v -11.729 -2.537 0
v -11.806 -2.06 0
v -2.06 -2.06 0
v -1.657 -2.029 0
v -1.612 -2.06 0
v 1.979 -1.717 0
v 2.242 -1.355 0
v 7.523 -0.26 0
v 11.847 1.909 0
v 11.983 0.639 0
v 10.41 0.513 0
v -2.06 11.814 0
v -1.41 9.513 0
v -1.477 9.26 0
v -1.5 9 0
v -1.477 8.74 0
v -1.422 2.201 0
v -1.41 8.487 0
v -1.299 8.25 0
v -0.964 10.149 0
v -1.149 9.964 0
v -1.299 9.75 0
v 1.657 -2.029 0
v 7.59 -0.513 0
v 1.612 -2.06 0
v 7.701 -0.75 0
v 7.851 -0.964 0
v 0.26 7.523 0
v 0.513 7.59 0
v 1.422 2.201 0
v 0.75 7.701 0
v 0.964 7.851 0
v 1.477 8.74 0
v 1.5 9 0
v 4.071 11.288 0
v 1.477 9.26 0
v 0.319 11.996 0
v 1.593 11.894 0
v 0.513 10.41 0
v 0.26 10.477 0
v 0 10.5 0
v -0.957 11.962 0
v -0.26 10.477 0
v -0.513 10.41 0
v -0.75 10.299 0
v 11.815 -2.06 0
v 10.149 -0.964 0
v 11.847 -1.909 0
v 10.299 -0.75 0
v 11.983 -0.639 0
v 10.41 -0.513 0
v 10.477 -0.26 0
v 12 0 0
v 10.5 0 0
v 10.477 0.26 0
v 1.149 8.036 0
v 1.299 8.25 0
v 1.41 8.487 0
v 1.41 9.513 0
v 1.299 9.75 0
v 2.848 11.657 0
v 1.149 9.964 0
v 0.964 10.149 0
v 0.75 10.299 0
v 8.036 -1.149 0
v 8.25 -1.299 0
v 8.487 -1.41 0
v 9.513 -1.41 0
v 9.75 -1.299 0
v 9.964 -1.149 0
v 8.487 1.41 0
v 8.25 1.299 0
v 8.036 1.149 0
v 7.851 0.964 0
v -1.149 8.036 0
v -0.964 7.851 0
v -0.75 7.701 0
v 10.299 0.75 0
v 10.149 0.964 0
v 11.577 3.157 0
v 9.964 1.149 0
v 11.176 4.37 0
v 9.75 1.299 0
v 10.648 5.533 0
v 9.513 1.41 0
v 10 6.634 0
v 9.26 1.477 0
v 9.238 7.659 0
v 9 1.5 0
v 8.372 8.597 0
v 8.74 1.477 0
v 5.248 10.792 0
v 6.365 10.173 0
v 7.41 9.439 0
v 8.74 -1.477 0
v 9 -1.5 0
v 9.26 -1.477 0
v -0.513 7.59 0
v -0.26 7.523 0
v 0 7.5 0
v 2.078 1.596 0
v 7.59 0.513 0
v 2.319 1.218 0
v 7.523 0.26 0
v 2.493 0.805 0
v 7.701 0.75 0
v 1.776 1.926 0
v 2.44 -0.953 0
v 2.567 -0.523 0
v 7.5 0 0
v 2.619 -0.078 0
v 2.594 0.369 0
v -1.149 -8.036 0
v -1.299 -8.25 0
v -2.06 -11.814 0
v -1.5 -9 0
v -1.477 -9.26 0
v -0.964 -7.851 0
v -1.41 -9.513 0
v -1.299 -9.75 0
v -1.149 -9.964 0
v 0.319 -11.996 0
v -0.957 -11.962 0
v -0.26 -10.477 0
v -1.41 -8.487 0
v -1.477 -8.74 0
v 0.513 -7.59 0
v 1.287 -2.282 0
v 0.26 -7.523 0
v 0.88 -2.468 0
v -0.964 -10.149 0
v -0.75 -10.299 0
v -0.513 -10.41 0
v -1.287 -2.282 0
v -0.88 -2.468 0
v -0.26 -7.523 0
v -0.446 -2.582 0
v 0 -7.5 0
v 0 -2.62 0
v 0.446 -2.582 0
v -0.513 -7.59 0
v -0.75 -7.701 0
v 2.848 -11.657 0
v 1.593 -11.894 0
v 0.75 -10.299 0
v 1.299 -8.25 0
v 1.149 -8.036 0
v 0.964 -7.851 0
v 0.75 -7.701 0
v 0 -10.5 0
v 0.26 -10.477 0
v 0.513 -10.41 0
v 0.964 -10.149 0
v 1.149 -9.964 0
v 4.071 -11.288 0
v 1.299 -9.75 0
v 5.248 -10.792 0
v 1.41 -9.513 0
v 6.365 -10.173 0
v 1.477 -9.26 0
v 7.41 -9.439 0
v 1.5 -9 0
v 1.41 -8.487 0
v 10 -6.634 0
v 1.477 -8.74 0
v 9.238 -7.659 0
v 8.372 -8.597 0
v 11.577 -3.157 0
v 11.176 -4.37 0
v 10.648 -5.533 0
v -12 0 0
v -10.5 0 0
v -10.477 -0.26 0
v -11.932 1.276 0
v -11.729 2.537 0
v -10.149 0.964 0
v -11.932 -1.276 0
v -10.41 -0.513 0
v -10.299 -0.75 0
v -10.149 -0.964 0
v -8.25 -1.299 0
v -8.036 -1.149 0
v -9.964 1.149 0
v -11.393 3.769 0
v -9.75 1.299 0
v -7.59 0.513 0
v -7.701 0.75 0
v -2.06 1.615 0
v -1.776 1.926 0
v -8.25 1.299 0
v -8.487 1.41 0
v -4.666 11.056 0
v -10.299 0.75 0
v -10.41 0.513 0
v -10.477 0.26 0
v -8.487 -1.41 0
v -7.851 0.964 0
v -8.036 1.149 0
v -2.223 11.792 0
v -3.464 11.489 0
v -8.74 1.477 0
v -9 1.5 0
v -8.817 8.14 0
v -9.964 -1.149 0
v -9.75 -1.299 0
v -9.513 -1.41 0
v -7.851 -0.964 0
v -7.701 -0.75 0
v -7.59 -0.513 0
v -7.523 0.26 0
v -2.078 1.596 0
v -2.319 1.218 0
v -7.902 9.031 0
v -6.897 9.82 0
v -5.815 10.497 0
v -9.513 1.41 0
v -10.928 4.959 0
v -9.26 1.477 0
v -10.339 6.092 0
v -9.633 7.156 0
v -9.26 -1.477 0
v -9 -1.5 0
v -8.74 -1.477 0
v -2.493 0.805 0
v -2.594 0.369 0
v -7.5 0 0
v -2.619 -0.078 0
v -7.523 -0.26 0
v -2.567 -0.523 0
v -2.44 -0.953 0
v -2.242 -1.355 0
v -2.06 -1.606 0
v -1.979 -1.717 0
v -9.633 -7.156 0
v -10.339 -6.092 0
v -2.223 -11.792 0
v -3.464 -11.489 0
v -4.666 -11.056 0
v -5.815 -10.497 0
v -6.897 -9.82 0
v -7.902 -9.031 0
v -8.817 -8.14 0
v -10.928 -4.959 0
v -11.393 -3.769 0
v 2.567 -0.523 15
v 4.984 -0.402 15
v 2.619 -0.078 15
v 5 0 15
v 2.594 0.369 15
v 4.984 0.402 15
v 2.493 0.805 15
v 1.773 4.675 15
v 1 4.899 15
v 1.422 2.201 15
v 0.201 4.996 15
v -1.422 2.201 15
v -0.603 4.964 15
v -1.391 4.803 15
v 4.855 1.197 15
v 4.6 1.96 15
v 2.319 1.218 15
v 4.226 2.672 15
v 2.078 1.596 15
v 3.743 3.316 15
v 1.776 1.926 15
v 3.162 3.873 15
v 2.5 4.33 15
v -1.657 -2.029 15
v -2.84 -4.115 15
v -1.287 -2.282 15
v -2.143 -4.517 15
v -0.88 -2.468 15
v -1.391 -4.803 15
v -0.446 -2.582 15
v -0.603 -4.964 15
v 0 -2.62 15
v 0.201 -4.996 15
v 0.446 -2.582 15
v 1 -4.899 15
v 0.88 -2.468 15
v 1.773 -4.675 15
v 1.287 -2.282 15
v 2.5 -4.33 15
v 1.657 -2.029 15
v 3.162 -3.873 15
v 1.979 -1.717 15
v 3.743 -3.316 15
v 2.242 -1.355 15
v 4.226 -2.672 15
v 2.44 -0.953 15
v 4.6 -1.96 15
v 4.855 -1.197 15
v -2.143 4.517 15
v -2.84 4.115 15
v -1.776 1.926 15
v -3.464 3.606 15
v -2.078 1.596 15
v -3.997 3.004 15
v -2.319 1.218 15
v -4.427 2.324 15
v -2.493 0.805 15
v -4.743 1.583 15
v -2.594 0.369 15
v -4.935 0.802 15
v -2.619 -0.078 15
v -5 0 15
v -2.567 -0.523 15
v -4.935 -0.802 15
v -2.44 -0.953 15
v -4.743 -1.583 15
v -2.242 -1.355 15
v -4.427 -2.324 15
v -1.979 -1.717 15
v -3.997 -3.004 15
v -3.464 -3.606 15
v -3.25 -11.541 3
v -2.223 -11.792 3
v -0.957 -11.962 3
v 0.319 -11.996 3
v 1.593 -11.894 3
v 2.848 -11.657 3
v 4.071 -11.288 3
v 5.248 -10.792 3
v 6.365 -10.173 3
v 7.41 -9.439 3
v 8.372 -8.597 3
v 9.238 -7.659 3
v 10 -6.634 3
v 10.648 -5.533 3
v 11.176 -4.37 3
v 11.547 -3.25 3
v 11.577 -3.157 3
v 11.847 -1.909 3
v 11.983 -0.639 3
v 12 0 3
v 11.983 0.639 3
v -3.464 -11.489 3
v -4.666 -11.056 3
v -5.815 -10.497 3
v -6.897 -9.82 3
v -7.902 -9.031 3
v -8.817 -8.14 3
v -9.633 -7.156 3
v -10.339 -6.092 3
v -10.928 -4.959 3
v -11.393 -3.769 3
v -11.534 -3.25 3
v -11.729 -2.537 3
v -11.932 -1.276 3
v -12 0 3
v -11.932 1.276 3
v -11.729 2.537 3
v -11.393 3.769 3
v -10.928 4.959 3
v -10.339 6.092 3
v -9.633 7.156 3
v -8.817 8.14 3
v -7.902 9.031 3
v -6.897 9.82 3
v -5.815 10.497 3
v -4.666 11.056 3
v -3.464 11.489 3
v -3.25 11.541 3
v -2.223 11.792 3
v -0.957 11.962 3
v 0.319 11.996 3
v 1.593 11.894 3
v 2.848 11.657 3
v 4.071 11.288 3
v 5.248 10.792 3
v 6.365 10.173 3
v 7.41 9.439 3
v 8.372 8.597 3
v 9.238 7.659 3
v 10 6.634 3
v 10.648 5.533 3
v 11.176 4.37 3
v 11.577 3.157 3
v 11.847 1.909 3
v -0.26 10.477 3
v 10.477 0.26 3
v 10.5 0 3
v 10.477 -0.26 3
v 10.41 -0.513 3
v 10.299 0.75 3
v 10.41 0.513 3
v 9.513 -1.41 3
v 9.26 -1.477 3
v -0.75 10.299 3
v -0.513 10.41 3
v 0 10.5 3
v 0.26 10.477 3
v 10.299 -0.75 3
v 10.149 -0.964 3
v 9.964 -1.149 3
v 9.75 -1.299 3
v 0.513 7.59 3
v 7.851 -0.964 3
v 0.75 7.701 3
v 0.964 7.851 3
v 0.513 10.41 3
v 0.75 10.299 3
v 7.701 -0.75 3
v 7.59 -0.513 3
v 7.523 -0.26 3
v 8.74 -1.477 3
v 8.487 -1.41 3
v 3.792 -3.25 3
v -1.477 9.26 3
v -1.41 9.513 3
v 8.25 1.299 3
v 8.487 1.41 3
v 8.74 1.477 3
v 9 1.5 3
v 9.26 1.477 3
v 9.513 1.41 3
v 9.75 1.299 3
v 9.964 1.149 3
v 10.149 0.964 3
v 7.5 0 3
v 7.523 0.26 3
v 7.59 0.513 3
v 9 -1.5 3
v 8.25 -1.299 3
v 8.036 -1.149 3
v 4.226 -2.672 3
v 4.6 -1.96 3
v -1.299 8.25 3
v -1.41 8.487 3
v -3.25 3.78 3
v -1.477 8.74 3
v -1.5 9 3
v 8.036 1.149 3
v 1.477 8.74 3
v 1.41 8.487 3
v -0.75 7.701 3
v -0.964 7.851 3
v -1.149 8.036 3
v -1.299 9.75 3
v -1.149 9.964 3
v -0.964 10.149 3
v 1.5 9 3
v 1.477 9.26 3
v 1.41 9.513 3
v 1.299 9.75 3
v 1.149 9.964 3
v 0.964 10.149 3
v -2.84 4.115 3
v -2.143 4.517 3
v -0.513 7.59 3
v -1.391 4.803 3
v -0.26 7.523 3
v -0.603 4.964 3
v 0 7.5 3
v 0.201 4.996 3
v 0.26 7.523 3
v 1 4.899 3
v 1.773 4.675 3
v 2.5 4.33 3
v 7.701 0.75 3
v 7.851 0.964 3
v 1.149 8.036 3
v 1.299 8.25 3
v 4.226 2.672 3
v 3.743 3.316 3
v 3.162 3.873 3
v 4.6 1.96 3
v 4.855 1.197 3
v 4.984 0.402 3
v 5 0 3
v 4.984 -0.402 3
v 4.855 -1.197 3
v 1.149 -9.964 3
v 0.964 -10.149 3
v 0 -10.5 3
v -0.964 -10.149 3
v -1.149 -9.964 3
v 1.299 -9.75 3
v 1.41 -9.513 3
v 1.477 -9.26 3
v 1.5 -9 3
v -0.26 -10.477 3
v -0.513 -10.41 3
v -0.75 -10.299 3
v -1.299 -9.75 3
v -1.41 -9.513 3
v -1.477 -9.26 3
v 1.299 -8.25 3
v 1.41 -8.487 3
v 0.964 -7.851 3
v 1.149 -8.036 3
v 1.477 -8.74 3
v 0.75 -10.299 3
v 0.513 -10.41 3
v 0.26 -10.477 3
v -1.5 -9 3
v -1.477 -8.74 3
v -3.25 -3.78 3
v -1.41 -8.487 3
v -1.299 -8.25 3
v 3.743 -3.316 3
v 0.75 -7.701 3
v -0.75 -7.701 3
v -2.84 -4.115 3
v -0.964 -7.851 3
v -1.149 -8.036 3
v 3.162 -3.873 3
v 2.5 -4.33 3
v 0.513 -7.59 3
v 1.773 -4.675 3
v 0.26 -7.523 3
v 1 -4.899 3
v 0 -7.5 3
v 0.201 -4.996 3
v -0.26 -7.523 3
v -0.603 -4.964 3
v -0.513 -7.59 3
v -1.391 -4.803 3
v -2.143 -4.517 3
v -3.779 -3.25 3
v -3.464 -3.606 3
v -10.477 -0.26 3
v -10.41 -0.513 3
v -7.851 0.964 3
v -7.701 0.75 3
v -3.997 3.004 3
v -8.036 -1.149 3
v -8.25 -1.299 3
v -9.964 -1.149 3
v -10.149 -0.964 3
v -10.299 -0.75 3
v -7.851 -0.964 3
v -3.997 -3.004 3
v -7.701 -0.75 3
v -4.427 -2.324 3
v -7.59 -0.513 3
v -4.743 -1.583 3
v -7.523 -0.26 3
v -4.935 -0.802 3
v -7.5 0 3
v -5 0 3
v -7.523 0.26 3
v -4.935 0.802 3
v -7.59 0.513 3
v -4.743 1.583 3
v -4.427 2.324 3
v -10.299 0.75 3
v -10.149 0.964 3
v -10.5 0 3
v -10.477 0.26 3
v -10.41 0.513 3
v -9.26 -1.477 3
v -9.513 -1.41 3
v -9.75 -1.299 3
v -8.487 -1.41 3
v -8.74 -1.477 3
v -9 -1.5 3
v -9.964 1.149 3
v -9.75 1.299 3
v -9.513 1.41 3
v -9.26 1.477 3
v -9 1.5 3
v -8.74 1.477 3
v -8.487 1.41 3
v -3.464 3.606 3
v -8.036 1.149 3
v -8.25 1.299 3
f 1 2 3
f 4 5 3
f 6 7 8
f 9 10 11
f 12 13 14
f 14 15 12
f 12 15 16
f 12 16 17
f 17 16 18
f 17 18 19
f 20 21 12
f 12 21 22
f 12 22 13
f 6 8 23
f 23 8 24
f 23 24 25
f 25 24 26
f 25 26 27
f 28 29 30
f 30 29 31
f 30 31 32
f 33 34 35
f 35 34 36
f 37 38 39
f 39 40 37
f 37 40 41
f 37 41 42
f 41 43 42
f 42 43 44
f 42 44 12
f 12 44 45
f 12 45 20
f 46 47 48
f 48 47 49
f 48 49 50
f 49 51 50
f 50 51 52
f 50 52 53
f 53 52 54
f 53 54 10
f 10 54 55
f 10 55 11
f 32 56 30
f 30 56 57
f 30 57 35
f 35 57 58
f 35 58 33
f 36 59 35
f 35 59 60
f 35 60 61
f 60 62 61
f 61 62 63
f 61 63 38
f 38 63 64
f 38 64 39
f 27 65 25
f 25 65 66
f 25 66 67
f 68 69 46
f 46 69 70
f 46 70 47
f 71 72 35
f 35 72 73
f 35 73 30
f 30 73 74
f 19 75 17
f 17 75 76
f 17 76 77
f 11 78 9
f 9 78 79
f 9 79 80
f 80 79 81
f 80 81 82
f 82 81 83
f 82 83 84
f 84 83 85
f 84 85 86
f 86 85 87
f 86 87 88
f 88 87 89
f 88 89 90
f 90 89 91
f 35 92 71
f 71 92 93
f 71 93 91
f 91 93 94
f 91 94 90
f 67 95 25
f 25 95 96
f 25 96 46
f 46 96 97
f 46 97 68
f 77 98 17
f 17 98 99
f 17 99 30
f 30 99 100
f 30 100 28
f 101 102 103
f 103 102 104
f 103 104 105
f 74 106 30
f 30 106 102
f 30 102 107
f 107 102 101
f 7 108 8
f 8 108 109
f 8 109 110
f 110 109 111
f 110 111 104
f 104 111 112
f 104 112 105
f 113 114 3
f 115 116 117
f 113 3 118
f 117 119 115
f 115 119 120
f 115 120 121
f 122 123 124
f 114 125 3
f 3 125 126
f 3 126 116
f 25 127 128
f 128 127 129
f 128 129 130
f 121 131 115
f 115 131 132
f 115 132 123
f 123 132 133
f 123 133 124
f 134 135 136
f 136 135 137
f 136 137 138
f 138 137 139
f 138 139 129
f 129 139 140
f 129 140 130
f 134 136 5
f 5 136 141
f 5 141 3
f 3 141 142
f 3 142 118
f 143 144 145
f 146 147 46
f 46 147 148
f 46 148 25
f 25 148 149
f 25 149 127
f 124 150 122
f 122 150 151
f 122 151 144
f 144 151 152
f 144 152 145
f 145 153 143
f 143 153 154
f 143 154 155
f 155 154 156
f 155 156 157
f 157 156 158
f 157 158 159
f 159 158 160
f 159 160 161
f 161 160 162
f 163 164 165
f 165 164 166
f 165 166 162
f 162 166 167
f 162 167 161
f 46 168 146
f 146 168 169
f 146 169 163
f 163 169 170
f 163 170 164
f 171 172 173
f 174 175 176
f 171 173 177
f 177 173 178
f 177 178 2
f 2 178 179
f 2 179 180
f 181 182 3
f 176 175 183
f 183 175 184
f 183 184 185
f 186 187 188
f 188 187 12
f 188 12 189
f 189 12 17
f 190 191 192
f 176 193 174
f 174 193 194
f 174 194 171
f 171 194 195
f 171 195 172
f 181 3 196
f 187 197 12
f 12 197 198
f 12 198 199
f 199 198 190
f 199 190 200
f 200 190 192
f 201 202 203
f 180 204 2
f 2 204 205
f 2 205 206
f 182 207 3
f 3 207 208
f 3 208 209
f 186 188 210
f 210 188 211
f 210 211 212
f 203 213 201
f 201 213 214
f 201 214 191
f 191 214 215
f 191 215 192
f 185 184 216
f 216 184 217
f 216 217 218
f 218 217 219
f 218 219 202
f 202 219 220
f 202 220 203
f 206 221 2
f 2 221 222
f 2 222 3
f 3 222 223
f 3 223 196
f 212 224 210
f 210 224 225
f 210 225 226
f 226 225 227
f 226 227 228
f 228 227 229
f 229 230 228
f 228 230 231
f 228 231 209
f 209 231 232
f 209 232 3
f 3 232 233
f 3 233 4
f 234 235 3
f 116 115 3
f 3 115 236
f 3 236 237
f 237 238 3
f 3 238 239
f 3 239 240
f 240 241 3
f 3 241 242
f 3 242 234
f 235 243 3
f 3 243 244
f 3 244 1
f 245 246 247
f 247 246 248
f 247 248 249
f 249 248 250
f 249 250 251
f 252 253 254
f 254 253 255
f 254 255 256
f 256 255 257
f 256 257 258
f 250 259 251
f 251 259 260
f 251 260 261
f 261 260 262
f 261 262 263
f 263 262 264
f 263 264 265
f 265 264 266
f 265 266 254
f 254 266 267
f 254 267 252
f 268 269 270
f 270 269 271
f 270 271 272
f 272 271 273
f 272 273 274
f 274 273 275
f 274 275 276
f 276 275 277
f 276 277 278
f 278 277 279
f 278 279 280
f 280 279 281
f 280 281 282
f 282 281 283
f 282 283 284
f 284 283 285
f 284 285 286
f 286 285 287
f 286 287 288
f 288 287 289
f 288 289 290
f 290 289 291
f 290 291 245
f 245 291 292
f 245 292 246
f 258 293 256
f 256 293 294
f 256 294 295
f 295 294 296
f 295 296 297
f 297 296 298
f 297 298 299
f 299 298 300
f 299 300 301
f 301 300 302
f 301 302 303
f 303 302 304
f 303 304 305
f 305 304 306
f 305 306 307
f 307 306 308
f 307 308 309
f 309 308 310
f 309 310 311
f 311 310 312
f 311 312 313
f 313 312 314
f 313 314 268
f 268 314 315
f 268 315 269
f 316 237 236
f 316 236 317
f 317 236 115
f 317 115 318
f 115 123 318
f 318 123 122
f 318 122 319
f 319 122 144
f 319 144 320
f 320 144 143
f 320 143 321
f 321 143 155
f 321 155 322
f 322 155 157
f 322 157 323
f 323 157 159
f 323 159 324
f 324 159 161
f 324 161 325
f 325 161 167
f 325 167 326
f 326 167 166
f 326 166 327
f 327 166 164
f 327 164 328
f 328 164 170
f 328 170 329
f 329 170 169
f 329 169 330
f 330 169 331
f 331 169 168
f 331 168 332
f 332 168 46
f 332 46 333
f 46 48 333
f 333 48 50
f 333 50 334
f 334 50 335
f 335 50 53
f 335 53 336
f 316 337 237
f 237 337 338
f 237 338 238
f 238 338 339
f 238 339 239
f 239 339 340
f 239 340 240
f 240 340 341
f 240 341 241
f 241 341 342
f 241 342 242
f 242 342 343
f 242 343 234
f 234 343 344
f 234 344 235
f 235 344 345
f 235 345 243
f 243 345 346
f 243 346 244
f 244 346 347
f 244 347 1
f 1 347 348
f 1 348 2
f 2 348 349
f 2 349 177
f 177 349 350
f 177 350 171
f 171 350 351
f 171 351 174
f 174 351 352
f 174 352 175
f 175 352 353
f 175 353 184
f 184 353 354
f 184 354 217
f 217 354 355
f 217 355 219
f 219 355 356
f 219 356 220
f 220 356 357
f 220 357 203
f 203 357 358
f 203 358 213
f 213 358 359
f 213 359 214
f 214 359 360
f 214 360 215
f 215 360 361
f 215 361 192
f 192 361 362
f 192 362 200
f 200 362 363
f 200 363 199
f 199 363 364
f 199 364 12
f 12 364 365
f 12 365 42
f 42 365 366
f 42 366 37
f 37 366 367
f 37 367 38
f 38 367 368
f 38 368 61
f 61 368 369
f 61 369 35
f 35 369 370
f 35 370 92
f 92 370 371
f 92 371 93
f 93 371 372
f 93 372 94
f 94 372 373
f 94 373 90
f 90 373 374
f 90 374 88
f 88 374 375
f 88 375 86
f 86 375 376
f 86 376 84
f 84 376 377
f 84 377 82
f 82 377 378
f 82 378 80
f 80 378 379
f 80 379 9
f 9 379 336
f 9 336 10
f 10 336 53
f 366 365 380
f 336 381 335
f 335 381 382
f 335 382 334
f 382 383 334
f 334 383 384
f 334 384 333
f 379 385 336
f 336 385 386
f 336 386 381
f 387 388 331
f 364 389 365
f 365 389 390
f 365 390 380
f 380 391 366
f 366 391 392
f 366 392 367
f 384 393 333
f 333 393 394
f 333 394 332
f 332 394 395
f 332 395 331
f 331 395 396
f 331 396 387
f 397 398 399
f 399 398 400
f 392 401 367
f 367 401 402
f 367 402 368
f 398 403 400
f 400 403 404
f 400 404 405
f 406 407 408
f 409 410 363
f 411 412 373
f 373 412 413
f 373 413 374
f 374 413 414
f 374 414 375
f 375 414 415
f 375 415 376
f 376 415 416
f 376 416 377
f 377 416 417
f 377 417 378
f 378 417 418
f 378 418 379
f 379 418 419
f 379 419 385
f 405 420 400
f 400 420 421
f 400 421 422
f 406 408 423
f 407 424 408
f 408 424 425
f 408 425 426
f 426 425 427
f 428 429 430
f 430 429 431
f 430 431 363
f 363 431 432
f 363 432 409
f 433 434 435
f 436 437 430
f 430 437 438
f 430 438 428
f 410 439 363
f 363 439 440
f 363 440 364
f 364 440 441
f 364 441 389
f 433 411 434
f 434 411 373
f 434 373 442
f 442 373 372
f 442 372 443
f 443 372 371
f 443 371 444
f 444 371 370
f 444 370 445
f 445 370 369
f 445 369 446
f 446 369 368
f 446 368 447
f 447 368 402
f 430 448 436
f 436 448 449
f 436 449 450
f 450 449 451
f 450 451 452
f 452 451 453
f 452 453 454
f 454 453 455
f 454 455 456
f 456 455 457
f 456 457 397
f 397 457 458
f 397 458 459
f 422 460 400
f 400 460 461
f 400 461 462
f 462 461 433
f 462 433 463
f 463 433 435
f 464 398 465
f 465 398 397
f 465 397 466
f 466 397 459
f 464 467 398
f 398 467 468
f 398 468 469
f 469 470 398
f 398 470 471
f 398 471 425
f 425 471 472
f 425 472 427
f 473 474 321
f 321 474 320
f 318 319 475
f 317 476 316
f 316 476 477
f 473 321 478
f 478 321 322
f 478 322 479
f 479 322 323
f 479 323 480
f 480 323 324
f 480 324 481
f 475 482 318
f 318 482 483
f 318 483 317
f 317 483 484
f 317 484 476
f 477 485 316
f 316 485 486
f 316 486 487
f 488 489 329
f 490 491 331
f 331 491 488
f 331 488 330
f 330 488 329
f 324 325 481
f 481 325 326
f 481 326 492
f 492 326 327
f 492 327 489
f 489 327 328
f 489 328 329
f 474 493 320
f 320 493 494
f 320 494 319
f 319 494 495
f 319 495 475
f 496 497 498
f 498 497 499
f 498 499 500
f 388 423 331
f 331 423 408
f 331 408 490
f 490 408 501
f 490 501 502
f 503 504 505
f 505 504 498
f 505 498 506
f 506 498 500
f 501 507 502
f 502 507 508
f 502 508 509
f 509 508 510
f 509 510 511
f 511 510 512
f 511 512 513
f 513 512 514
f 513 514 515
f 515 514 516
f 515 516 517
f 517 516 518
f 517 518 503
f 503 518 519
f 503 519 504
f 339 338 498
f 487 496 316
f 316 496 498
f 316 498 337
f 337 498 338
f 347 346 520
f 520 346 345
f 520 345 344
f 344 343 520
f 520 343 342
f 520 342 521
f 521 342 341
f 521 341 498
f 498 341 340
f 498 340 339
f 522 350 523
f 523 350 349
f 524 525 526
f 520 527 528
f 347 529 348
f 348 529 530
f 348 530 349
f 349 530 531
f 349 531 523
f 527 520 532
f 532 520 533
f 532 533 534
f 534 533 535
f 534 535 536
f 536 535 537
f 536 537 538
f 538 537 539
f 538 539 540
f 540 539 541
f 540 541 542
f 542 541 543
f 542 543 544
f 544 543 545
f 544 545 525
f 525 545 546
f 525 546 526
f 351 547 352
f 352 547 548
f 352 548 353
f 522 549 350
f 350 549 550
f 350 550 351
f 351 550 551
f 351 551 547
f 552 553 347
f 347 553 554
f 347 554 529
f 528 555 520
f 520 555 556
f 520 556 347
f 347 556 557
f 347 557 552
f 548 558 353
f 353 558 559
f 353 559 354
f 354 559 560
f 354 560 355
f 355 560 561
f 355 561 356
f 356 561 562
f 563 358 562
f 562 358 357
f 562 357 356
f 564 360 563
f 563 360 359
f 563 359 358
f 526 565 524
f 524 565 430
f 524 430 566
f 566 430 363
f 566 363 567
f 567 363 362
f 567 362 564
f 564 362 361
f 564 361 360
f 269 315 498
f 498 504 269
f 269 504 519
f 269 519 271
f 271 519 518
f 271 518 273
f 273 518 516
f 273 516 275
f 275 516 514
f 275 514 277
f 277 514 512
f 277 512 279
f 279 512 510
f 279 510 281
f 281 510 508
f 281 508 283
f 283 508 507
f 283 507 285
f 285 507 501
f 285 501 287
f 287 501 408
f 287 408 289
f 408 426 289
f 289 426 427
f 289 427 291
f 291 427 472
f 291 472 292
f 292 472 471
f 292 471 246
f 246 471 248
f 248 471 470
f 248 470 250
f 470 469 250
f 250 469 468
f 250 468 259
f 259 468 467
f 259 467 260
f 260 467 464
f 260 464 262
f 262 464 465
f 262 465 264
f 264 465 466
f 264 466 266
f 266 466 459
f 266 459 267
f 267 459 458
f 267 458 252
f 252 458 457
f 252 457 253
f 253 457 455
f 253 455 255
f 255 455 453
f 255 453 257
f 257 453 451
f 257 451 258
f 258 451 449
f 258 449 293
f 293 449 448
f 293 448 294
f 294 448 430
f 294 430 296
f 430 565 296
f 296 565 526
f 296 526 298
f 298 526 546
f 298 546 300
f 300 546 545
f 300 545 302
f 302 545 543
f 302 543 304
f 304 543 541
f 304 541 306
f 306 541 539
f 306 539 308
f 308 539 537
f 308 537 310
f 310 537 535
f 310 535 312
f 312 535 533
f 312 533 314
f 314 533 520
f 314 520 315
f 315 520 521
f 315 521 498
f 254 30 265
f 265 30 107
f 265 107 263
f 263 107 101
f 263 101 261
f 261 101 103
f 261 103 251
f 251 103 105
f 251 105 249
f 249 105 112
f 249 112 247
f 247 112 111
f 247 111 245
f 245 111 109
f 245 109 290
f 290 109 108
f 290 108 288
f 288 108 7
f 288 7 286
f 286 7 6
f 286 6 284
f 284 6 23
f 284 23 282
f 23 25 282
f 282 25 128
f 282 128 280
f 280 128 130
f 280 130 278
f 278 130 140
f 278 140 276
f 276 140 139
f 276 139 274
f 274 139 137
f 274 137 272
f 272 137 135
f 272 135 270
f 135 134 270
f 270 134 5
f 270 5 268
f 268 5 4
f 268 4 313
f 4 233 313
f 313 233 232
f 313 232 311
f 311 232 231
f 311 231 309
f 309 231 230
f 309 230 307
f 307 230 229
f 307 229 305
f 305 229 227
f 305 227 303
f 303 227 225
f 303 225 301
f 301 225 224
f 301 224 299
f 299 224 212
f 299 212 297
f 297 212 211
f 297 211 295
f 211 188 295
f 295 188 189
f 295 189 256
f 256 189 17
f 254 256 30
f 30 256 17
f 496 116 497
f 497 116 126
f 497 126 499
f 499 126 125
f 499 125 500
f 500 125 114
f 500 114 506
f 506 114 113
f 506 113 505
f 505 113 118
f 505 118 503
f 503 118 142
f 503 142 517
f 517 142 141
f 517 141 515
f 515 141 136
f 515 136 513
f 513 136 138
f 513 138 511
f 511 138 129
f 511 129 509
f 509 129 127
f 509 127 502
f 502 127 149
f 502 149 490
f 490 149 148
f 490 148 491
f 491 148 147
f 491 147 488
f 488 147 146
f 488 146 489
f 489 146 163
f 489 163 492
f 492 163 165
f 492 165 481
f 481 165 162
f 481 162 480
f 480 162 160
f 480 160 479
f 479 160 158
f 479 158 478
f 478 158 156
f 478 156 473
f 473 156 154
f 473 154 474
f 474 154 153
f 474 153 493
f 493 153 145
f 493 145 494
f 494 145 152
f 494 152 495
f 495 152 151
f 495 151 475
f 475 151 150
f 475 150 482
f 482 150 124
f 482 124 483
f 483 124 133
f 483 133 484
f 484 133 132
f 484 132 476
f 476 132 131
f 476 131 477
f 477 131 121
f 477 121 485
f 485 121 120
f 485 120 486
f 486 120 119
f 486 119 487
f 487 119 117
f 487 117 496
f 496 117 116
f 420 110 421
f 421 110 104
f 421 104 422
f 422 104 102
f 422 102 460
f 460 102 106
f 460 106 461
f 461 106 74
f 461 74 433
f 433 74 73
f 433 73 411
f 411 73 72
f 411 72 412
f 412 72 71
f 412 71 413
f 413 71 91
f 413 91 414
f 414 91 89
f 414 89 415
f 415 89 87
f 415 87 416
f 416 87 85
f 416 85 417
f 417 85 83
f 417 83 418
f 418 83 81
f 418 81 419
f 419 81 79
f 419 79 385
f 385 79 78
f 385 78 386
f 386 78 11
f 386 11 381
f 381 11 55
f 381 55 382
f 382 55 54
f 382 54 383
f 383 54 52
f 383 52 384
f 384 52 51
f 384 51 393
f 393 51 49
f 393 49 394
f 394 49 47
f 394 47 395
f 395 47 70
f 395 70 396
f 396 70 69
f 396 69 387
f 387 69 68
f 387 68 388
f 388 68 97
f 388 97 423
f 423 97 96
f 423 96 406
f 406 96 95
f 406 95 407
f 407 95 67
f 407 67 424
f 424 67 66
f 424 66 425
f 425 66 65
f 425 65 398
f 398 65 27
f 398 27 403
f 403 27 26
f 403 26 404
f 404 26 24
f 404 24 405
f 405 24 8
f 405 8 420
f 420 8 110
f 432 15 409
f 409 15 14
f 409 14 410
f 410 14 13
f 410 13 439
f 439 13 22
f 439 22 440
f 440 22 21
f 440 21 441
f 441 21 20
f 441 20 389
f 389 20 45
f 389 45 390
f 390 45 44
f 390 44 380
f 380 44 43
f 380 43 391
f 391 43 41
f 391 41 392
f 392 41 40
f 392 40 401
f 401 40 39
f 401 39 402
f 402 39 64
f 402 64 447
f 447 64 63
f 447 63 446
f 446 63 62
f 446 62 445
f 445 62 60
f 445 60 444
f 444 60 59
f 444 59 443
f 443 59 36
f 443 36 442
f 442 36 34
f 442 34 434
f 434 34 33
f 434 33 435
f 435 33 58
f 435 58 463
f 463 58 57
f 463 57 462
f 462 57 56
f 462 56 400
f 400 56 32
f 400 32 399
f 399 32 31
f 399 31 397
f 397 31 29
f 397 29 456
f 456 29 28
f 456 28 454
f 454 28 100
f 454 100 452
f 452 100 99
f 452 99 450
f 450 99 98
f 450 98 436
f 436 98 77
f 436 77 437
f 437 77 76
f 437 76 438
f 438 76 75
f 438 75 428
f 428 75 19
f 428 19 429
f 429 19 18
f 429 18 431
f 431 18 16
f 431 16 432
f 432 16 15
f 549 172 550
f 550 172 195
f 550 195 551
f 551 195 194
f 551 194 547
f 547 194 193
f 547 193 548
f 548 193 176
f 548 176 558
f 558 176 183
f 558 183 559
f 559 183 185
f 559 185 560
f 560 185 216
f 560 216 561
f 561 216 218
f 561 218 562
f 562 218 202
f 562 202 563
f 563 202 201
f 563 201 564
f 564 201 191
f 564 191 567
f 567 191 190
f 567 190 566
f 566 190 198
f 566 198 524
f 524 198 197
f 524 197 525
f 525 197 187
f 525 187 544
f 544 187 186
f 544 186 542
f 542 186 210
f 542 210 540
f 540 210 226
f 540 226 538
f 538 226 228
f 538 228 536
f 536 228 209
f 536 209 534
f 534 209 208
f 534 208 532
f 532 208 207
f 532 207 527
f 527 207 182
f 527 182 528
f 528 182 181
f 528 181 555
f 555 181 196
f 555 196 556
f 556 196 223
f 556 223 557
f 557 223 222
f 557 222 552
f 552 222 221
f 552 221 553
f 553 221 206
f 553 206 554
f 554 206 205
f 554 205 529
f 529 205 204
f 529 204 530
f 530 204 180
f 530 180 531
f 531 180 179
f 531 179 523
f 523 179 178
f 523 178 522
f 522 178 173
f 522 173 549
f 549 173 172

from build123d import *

# Parameters (mm, degrees)
SKETCH1_R           = 12
BOSS_EXTRUDE1_DEPTH = 3
SKETCH2_R           = 5
BOSS_EXTRUDE2_DEPTH = 15
CUT_EXTRUDE1_DEPTH  = 15
SKETCH4_R           = 1.5
CUT_EXTRUDE2_DEPTH  = 5


with BuildPart() as part:
    # Sketch1 → Boss-Extrude1 (new body)
    with BuildSketch(Plane.XY):
        Circle(SKETCH1_R)
    extrude(amount=BOSS_EXTRUDE1_DEPTH)

    # Sketch2 → Boss-Extrude2 (add)
    with BuildSketch(Plane.XY):
        Circle(SKETCH2_R)
    extrude(amount=BOSS_EXTRUDE2_DEPTH)

    # Sketch3 → Cut-Extrude1 (cut)
    with BuildSketch(Plane.XY):
        with BuildLine():
            Line((-0.065110368, 2.2008), (1.421576364, 2.2008))
            ThreePointArc((1.421576364, 2.2008), (0, -2.62), (-1.421576364, 2.2008))
            Line((-1.421576364, 2.2008), (-0.065110368, 2.2008))
        make_face()
    extrude(amount=CUT_EXTRUDE1_DEPTH, mode=Mode.SUBTRACT)

    # Sketch4 → Cut-Extrude2 (cut)
    with BuildSketch(Plane.XY):
        with Locations((-9, 0)):
            Circle(SKETCH4_R)
        with Locations((0, 9)):
            Circle(SKETCH4_R)
        with Locations((9, 0)):
            Circle(SKETCH4_R)
        with Locations((0, -9)):
            Circle(SKETCH4_R)
    extrude(amount=CUT_EXTRUDE2_DEPTH, mode=Mode.SUBTRACT)


solid = part.part
